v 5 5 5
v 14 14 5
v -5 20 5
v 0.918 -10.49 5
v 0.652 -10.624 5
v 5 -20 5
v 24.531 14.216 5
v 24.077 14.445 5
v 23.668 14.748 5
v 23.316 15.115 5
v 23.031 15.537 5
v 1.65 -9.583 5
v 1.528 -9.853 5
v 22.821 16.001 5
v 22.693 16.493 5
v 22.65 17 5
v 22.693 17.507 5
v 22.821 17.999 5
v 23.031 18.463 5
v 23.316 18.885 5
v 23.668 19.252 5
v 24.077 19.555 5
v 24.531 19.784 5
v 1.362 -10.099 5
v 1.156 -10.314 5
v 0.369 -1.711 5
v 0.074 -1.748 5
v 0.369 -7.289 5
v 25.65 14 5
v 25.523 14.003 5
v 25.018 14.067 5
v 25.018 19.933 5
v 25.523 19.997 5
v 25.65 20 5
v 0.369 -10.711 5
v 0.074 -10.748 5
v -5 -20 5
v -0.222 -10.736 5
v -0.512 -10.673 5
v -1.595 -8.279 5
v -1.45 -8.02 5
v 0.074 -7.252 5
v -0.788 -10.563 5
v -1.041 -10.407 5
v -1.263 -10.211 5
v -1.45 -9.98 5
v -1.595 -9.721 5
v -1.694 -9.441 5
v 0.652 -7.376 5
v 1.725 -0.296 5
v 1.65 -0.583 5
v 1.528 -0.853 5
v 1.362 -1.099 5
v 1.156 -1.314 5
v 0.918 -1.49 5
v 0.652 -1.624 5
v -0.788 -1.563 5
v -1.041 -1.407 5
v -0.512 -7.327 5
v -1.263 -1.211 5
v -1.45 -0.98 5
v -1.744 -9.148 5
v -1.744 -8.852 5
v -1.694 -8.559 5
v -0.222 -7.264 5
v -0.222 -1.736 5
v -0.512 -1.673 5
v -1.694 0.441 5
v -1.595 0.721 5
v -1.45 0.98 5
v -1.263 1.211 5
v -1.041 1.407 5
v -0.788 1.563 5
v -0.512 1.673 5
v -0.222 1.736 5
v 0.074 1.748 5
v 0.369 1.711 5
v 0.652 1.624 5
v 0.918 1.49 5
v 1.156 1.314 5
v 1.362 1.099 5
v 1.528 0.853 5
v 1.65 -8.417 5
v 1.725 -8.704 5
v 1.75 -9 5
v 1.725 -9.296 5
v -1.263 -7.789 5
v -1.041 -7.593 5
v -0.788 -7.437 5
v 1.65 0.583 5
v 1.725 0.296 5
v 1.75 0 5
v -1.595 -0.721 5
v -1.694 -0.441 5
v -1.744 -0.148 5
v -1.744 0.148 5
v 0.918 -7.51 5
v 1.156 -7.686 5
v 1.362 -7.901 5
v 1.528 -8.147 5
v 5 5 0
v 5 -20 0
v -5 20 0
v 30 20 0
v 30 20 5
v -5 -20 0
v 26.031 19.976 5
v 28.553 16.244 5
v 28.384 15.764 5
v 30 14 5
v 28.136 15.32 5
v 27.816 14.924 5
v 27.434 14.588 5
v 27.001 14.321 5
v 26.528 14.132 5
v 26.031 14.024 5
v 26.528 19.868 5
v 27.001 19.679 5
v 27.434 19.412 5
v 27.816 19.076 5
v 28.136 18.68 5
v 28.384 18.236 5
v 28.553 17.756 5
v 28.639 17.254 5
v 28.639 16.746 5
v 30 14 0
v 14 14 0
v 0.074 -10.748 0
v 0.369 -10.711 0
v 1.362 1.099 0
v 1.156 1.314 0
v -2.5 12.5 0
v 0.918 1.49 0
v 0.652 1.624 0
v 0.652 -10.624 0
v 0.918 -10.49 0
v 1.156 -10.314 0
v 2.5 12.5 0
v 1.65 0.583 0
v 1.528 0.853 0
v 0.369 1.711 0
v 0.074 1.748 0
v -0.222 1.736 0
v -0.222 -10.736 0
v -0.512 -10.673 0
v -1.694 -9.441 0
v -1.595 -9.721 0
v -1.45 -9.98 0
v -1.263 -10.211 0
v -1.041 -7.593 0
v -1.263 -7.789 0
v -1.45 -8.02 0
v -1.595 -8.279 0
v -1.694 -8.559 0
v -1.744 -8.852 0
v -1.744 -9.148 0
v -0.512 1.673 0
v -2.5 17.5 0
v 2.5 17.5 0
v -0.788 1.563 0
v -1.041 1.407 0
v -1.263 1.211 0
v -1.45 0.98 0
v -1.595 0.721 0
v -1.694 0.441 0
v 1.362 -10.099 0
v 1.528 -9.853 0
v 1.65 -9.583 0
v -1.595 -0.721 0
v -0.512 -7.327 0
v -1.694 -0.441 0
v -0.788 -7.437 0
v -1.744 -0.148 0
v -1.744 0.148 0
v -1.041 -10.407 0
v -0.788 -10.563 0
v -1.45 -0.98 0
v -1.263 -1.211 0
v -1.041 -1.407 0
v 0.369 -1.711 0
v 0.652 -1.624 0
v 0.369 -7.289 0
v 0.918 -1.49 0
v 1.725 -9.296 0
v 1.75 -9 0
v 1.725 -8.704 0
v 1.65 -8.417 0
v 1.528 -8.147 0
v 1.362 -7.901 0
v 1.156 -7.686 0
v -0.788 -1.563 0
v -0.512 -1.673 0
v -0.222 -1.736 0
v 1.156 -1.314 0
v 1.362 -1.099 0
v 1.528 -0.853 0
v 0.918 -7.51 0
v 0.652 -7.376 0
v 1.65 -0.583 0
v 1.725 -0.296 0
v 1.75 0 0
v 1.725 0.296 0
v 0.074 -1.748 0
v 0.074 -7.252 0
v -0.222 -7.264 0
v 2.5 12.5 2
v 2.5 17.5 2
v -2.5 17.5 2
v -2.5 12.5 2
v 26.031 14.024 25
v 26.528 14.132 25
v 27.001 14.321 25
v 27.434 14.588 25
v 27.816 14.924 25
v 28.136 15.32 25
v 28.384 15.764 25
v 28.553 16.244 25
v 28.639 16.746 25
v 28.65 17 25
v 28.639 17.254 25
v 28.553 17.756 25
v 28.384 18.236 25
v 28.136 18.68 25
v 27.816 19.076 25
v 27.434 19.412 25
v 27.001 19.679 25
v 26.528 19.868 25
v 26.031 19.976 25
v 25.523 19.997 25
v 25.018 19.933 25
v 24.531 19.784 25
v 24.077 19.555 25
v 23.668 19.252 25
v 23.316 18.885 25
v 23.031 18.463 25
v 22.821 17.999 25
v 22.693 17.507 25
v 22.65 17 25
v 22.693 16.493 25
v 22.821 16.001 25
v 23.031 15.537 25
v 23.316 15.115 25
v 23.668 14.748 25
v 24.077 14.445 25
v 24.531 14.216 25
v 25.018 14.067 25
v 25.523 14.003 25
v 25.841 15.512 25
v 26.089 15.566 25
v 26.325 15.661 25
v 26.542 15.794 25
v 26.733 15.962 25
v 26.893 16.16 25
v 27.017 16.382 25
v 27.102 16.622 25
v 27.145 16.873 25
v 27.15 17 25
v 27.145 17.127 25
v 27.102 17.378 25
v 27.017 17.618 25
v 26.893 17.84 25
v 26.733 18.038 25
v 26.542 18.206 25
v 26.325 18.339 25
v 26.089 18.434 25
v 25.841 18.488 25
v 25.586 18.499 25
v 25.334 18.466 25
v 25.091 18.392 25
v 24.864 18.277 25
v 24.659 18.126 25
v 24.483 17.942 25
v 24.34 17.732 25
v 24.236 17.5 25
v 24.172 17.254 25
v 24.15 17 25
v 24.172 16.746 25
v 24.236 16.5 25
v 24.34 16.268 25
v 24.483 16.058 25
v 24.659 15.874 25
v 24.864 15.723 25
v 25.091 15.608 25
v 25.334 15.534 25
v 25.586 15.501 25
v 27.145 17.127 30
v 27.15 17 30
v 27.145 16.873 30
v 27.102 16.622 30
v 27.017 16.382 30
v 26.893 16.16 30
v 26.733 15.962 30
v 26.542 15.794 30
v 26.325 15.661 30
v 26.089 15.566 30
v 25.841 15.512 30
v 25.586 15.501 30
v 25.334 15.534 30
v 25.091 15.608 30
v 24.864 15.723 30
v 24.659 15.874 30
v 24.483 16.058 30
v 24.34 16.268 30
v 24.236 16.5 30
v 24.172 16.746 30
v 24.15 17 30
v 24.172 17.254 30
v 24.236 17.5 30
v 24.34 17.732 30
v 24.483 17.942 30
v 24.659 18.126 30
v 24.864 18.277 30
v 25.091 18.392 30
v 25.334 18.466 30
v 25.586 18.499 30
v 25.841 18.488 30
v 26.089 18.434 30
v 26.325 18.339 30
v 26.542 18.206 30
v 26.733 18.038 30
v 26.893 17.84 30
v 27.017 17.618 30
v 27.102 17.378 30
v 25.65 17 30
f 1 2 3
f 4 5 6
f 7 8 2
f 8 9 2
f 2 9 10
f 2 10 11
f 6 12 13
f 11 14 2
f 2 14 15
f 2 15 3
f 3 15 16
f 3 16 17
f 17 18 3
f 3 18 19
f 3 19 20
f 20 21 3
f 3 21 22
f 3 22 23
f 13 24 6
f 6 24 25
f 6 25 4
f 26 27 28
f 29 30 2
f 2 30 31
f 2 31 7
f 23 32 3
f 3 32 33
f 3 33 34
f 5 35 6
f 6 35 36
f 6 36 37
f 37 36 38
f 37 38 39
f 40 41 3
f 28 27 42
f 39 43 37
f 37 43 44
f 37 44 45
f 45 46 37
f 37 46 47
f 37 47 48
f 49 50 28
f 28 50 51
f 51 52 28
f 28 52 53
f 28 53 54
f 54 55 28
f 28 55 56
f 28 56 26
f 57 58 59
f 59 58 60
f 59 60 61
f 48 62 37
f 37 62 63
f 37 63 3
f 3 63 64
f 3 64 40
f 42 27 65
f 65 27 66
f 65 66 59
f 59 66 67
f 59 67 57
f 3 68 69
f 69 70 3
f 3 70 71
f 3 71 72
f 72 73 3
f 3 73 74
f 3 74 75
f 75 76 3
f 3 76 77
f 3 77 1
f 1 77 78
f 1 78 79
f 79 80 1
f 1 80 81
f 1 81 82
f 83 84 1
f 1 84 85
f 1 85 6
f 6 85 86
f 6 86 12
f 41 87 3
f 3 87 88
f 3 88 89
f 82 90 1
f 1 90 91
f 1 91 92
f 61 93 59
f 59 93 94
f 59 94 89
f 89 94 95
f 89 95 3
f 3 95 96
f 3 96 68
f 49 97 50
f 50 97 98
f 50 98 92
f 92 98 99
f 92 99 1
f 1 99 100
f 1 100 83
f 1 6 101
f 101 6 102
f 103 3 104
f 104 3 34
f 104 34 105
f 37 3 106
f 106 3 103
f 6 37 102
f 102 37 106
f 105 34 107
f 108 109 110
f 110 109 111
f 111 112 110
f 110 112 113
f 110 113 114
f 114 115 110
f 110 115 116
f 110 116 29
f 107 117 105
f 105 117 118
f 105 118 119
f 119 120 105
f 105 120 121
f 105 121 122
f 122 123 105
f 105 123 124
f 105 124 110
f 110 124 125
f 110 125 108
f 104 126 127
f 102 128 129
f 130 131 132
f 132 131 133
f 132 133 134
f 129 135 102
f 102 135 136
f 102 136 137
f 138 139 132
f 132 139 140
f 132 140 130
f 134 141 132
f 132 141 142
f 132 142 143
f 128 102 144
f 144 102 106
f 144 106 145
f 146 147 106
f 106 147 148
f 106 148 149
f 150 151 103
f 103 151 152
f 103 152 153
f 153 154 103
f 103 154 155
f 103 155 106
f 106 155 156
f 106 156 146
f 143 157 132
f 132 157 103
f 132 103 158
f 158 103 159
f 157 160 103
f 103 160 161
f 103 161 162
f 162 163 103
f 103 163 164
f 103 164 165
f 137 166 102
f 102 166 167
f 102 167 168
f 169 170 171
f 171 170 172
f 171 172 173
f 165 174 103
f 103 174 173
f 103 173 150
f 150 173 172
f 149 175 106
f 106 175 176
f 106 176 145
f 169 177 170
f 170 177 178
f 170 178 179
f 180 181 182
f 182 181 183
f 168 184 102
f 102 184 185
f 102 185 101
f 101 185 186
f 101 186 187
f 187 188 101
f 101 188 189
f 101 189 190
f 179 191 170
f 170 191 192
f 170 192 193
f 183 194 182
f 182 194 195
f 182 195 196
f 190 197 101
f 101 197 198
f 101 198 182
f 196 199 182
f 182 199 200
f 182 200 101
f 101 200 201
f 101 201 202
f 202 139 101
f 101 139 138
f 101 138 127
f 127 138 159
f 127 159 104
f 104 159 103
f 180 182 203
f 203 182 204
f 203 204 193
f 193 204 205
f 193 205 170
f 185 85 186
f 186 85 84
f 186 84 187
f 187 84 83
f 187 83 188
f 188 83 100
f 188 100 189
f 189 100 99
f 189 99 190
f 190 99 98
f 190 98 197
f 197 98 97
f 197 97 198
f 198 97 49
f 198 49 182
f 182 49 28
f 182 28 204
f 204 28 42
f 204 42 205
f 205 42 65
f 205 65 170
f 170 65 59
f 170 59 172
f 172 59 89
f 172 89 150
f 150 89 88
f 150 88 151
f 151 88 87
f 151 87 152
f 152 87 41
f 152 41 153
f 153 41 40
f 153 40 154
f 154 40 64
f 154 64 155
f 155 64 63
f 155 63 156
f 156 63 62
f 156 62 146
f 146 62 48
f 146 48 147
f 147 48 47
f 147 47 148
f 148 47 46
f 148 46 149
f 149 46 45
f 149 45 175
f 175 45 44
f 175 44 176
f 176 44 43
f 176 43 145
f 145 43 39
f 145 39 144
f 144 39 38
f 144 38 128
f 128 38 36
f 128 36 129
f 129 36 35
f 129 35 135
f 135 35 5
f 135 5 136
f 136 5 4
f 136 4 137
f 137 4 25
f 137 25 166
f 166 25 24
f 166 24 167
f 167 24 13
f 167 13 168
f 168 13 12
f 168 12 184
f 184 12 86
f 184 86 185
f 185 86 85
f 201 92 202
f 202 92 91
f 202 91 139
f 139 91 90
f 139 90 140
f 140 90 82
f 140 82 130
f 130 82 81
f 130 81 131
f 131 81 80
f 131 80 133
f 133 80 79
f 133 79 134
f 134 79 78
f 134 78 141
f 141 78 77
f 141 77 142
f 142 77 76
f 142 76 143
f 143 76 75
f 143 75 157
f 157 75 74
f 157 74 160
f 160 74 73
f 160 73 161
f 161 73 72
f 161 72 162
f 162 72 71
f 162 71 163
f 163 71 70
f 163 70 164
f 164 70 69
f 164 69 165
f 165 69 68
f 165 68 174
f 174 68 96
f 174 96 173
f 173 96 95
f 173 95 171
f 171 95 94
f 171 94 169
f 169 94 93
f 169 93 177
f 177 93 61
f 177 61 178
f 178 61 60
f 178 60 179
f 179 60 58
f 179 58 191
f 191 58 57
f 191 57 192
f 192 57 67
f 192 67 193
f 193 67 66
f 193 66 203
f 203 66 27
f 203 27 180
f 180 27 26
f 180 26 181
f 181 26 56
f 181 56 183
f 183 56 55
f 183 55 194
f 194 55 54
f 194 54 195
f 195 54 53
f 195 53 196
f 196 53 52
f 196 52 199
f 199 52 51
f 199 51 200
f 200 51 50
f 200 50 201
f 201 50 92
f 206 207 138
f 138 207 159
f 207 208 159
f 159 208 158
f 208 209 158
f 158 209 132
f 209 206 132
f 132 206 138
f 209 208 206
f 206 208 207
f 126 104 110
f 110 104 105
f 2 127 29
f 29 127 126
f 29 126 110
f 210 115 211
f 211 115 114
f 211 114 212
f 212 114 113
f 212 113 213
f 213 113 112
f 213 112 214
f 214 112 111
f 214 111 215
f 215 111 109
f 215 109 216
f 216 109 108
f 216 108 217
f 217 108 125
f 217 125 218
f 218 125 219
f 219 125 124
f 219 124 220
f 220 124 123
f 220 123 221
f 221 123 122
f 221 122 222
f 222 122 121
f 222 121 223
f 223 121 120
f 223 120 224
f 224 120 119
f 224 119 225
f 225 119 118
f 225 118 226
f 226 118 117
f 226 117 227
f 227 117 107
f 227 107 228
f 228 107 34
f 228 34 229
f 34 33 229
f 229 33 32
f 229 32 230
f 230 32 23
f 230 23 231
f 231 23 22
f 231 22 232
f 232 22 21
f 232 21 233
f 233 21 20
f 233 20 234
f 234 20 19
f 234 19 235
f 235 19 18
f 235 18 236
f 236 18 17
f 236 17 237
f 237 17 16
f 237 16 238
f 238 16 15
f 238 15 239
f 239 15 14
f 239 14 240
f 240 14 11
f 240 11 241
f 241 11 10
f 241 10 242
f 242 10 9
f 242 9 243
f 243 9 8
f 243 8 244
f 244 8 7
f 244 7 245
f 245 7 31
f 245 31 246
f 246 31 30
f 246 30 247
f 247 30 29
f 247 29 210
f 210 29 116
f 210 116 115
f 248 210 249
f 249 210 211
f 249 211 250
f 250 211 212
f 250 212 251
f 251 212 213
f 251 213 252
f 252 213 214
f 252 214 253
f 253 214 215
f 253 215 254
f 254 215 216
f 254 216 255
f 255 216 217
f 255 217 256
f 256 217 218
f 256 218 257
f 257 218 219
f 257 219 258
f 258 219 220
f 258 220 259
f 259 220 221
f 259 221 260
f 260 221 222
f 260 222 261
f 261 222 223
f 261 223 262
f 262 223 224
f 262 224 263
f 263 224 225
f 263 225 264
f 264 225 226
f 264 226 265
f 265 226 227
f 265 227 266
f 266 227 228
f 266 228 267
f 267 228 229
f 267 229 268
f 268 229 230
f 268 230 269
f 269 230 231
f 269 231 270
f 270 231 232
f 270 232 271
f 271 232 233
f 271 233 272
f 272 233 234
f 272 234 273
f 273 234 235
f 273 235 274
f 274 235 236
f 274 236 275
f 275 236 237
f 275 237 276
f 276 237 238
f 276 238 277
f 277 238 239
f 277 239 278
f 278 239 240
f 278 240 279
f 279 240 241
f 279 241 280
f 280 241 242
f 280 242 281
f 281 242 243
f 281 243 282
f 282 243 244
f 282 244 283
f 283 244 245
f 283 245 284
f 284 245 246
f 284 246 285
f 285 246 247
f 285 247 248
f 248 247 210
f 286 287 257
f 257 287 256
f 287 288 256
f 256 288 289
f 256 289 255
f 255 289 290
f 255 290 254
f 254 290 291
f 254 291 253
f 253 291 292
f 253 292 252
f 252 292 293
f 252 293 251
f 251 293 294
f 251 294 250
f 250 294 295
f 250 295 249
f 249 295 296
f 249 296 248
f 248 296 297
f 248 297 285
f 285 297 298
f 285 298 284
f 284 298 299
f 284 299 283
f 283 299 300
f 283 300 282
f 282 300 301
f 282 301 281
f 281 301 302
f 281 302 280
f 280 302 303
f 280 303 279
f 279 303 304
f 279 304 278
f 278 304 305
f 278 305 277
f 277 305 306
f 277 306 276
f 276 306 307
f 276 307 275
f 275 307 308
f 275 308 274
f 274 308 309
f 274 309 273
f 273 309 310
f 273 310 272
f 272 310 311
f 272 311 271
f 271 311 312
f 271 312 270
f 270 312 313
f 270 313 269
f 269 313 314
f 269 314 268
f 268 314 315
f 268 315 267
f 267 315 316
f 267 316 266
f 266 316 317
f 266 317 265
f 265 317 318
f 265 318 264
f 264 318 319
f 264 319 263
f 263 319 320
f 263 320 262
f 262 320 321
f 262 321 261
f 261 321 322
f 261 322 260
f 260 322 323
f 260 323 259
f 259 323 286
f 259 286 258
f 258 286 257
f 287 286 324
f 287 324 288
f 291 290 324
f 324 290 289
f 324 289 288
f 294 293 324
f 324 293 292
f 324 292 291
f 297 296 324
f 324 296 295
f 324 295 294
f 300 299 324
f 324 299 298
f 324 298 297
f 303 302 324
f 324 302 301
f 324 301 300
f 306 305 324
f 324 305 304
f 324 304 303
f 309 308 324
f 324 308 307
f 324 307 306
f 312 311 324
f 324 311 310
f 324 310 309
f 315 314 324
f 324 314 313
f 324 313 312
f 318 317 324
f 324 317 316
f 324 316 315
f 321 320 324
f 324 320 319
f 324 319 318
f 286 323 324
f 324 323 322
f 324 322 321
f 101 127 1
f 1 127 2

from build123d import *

# Parameters (mm, degrees)
SKIZZE2_W                       = 10
SKIZZE2_H                       = 40
AUFSATZ_LINEAR_AUSTRAGEN1_DEPTH = 5
SKIZZE4_R                       = 1.75
SCHNITT_LINEAR_AUSTRAGEN1_DEPTH = 5
SKIZZE5_W                       = 5
SKIZZE5_H                       = 5
SCHNITT_LINEAR_AUSTRAGEN2_DEPTH = 2
SKIZZE6_W                       = 25
SKIZZE6_H                       = 6
AUFSATZ_LINEAR_AUSTRAGEN3_DEPTH = 5
SKIZZE7_R                       = 3
AUFSATZ_LINEAR_AUSTRAGEN4_DEPTH = 20
SKIZZE8_R                       = 1.5
AUFSATZ_LINEAR_AUSTRAGEN5_DEPTH = 5
AUFSATZ_LINEAR_AUSTRAGEN6_DEPTH = 5


with BuildPart() as part:
    # Skizze2 → Aufsatz-Linear austragen1 (new body)
    with BuildSketch(Plane.XY):
        Rectangle(SKIZZE2_W, SKIZZE2_H)
    extrude(amount=AUFSATZ_LINEAR_AUSTRAGEN1_DEPTH)

    # Skizze4 → Schnitt-Linear austragen1 (cut)
    with BuildSketch(Plane.XY.offset(5)):
        Circle(SKIZZE4_R)
        with Locations((0, -9)):
            Circle(SKIZZE4_R)
    extrude(amount=-SCHNITT_LINEAR_AUSTRAGEN1_DEPTH, mode=Mode.SUBTRACT)

    # Skizze5 → Schnitt-Linear austragen2 (cut)
    with BuildSketch(Plane(origin=(0, 0, 0), x_dir=(-1, 0, 0), z_dir=(0, 0, -1))):
        with Locations((0, 15)):
            Rectangle(SKIZZE5_W, SKIZZE5_H)
    extrude(amount=-SCHNITT_LINEAR_AUSTRAGEN2_DEPTH, mode=Mode.SUBTRACT)

    # Skizze6 → Aufsatz-Linear austragen3 (add)
    with BuildSketch(Plane.XY.offset(5)):
        with Locations((17.5, 17)):
            Rectangle(SKIZZE6_W, SKIZZE6_H)
    extrude(amount=-AUFSATZ_LINEAR_AUSTRAGEN3_DEPTH)

    # Skizze7 → Aufsatz-Linear austragen4 (add)
    with BuildSketch(Plane.XY.offset(5)):
        with Locations(Location((25.65, 17, 0), (0, 0, 270))):
            Circle(SKIZZE7_R)
    extrude(amount=AUFSATZ_LINEAR_AUSTRAGEN4_DEPTH)

    # Skizze8 → Aufsatz-Linear austragen5 (add)
    with BuildSketch(Plane.XY.offset(25)):
        with Locations((25.65, 17)):
            Circle(SKIZZE8_R)
    extrude(amount=AUFSATZ_LINEAR_AUSTRAGEN5_DEPTH)

    # Skizze9 → Aufsatz-Linear austragen6 (add)
    with BuildSketch(Plane.XY.offset(5)):
        Polygon((5, 14), (5, 10.656854249), (8.343145751, 14), align=None)
        Polygon((5, 10.656854249), (5, 5), (14, 14), (8.343145751, 14), align=None)
    extrude(amount=-AUFSATZ_LINEAR_AUSTRAGEN6_DEPTH)


solid = part.part
